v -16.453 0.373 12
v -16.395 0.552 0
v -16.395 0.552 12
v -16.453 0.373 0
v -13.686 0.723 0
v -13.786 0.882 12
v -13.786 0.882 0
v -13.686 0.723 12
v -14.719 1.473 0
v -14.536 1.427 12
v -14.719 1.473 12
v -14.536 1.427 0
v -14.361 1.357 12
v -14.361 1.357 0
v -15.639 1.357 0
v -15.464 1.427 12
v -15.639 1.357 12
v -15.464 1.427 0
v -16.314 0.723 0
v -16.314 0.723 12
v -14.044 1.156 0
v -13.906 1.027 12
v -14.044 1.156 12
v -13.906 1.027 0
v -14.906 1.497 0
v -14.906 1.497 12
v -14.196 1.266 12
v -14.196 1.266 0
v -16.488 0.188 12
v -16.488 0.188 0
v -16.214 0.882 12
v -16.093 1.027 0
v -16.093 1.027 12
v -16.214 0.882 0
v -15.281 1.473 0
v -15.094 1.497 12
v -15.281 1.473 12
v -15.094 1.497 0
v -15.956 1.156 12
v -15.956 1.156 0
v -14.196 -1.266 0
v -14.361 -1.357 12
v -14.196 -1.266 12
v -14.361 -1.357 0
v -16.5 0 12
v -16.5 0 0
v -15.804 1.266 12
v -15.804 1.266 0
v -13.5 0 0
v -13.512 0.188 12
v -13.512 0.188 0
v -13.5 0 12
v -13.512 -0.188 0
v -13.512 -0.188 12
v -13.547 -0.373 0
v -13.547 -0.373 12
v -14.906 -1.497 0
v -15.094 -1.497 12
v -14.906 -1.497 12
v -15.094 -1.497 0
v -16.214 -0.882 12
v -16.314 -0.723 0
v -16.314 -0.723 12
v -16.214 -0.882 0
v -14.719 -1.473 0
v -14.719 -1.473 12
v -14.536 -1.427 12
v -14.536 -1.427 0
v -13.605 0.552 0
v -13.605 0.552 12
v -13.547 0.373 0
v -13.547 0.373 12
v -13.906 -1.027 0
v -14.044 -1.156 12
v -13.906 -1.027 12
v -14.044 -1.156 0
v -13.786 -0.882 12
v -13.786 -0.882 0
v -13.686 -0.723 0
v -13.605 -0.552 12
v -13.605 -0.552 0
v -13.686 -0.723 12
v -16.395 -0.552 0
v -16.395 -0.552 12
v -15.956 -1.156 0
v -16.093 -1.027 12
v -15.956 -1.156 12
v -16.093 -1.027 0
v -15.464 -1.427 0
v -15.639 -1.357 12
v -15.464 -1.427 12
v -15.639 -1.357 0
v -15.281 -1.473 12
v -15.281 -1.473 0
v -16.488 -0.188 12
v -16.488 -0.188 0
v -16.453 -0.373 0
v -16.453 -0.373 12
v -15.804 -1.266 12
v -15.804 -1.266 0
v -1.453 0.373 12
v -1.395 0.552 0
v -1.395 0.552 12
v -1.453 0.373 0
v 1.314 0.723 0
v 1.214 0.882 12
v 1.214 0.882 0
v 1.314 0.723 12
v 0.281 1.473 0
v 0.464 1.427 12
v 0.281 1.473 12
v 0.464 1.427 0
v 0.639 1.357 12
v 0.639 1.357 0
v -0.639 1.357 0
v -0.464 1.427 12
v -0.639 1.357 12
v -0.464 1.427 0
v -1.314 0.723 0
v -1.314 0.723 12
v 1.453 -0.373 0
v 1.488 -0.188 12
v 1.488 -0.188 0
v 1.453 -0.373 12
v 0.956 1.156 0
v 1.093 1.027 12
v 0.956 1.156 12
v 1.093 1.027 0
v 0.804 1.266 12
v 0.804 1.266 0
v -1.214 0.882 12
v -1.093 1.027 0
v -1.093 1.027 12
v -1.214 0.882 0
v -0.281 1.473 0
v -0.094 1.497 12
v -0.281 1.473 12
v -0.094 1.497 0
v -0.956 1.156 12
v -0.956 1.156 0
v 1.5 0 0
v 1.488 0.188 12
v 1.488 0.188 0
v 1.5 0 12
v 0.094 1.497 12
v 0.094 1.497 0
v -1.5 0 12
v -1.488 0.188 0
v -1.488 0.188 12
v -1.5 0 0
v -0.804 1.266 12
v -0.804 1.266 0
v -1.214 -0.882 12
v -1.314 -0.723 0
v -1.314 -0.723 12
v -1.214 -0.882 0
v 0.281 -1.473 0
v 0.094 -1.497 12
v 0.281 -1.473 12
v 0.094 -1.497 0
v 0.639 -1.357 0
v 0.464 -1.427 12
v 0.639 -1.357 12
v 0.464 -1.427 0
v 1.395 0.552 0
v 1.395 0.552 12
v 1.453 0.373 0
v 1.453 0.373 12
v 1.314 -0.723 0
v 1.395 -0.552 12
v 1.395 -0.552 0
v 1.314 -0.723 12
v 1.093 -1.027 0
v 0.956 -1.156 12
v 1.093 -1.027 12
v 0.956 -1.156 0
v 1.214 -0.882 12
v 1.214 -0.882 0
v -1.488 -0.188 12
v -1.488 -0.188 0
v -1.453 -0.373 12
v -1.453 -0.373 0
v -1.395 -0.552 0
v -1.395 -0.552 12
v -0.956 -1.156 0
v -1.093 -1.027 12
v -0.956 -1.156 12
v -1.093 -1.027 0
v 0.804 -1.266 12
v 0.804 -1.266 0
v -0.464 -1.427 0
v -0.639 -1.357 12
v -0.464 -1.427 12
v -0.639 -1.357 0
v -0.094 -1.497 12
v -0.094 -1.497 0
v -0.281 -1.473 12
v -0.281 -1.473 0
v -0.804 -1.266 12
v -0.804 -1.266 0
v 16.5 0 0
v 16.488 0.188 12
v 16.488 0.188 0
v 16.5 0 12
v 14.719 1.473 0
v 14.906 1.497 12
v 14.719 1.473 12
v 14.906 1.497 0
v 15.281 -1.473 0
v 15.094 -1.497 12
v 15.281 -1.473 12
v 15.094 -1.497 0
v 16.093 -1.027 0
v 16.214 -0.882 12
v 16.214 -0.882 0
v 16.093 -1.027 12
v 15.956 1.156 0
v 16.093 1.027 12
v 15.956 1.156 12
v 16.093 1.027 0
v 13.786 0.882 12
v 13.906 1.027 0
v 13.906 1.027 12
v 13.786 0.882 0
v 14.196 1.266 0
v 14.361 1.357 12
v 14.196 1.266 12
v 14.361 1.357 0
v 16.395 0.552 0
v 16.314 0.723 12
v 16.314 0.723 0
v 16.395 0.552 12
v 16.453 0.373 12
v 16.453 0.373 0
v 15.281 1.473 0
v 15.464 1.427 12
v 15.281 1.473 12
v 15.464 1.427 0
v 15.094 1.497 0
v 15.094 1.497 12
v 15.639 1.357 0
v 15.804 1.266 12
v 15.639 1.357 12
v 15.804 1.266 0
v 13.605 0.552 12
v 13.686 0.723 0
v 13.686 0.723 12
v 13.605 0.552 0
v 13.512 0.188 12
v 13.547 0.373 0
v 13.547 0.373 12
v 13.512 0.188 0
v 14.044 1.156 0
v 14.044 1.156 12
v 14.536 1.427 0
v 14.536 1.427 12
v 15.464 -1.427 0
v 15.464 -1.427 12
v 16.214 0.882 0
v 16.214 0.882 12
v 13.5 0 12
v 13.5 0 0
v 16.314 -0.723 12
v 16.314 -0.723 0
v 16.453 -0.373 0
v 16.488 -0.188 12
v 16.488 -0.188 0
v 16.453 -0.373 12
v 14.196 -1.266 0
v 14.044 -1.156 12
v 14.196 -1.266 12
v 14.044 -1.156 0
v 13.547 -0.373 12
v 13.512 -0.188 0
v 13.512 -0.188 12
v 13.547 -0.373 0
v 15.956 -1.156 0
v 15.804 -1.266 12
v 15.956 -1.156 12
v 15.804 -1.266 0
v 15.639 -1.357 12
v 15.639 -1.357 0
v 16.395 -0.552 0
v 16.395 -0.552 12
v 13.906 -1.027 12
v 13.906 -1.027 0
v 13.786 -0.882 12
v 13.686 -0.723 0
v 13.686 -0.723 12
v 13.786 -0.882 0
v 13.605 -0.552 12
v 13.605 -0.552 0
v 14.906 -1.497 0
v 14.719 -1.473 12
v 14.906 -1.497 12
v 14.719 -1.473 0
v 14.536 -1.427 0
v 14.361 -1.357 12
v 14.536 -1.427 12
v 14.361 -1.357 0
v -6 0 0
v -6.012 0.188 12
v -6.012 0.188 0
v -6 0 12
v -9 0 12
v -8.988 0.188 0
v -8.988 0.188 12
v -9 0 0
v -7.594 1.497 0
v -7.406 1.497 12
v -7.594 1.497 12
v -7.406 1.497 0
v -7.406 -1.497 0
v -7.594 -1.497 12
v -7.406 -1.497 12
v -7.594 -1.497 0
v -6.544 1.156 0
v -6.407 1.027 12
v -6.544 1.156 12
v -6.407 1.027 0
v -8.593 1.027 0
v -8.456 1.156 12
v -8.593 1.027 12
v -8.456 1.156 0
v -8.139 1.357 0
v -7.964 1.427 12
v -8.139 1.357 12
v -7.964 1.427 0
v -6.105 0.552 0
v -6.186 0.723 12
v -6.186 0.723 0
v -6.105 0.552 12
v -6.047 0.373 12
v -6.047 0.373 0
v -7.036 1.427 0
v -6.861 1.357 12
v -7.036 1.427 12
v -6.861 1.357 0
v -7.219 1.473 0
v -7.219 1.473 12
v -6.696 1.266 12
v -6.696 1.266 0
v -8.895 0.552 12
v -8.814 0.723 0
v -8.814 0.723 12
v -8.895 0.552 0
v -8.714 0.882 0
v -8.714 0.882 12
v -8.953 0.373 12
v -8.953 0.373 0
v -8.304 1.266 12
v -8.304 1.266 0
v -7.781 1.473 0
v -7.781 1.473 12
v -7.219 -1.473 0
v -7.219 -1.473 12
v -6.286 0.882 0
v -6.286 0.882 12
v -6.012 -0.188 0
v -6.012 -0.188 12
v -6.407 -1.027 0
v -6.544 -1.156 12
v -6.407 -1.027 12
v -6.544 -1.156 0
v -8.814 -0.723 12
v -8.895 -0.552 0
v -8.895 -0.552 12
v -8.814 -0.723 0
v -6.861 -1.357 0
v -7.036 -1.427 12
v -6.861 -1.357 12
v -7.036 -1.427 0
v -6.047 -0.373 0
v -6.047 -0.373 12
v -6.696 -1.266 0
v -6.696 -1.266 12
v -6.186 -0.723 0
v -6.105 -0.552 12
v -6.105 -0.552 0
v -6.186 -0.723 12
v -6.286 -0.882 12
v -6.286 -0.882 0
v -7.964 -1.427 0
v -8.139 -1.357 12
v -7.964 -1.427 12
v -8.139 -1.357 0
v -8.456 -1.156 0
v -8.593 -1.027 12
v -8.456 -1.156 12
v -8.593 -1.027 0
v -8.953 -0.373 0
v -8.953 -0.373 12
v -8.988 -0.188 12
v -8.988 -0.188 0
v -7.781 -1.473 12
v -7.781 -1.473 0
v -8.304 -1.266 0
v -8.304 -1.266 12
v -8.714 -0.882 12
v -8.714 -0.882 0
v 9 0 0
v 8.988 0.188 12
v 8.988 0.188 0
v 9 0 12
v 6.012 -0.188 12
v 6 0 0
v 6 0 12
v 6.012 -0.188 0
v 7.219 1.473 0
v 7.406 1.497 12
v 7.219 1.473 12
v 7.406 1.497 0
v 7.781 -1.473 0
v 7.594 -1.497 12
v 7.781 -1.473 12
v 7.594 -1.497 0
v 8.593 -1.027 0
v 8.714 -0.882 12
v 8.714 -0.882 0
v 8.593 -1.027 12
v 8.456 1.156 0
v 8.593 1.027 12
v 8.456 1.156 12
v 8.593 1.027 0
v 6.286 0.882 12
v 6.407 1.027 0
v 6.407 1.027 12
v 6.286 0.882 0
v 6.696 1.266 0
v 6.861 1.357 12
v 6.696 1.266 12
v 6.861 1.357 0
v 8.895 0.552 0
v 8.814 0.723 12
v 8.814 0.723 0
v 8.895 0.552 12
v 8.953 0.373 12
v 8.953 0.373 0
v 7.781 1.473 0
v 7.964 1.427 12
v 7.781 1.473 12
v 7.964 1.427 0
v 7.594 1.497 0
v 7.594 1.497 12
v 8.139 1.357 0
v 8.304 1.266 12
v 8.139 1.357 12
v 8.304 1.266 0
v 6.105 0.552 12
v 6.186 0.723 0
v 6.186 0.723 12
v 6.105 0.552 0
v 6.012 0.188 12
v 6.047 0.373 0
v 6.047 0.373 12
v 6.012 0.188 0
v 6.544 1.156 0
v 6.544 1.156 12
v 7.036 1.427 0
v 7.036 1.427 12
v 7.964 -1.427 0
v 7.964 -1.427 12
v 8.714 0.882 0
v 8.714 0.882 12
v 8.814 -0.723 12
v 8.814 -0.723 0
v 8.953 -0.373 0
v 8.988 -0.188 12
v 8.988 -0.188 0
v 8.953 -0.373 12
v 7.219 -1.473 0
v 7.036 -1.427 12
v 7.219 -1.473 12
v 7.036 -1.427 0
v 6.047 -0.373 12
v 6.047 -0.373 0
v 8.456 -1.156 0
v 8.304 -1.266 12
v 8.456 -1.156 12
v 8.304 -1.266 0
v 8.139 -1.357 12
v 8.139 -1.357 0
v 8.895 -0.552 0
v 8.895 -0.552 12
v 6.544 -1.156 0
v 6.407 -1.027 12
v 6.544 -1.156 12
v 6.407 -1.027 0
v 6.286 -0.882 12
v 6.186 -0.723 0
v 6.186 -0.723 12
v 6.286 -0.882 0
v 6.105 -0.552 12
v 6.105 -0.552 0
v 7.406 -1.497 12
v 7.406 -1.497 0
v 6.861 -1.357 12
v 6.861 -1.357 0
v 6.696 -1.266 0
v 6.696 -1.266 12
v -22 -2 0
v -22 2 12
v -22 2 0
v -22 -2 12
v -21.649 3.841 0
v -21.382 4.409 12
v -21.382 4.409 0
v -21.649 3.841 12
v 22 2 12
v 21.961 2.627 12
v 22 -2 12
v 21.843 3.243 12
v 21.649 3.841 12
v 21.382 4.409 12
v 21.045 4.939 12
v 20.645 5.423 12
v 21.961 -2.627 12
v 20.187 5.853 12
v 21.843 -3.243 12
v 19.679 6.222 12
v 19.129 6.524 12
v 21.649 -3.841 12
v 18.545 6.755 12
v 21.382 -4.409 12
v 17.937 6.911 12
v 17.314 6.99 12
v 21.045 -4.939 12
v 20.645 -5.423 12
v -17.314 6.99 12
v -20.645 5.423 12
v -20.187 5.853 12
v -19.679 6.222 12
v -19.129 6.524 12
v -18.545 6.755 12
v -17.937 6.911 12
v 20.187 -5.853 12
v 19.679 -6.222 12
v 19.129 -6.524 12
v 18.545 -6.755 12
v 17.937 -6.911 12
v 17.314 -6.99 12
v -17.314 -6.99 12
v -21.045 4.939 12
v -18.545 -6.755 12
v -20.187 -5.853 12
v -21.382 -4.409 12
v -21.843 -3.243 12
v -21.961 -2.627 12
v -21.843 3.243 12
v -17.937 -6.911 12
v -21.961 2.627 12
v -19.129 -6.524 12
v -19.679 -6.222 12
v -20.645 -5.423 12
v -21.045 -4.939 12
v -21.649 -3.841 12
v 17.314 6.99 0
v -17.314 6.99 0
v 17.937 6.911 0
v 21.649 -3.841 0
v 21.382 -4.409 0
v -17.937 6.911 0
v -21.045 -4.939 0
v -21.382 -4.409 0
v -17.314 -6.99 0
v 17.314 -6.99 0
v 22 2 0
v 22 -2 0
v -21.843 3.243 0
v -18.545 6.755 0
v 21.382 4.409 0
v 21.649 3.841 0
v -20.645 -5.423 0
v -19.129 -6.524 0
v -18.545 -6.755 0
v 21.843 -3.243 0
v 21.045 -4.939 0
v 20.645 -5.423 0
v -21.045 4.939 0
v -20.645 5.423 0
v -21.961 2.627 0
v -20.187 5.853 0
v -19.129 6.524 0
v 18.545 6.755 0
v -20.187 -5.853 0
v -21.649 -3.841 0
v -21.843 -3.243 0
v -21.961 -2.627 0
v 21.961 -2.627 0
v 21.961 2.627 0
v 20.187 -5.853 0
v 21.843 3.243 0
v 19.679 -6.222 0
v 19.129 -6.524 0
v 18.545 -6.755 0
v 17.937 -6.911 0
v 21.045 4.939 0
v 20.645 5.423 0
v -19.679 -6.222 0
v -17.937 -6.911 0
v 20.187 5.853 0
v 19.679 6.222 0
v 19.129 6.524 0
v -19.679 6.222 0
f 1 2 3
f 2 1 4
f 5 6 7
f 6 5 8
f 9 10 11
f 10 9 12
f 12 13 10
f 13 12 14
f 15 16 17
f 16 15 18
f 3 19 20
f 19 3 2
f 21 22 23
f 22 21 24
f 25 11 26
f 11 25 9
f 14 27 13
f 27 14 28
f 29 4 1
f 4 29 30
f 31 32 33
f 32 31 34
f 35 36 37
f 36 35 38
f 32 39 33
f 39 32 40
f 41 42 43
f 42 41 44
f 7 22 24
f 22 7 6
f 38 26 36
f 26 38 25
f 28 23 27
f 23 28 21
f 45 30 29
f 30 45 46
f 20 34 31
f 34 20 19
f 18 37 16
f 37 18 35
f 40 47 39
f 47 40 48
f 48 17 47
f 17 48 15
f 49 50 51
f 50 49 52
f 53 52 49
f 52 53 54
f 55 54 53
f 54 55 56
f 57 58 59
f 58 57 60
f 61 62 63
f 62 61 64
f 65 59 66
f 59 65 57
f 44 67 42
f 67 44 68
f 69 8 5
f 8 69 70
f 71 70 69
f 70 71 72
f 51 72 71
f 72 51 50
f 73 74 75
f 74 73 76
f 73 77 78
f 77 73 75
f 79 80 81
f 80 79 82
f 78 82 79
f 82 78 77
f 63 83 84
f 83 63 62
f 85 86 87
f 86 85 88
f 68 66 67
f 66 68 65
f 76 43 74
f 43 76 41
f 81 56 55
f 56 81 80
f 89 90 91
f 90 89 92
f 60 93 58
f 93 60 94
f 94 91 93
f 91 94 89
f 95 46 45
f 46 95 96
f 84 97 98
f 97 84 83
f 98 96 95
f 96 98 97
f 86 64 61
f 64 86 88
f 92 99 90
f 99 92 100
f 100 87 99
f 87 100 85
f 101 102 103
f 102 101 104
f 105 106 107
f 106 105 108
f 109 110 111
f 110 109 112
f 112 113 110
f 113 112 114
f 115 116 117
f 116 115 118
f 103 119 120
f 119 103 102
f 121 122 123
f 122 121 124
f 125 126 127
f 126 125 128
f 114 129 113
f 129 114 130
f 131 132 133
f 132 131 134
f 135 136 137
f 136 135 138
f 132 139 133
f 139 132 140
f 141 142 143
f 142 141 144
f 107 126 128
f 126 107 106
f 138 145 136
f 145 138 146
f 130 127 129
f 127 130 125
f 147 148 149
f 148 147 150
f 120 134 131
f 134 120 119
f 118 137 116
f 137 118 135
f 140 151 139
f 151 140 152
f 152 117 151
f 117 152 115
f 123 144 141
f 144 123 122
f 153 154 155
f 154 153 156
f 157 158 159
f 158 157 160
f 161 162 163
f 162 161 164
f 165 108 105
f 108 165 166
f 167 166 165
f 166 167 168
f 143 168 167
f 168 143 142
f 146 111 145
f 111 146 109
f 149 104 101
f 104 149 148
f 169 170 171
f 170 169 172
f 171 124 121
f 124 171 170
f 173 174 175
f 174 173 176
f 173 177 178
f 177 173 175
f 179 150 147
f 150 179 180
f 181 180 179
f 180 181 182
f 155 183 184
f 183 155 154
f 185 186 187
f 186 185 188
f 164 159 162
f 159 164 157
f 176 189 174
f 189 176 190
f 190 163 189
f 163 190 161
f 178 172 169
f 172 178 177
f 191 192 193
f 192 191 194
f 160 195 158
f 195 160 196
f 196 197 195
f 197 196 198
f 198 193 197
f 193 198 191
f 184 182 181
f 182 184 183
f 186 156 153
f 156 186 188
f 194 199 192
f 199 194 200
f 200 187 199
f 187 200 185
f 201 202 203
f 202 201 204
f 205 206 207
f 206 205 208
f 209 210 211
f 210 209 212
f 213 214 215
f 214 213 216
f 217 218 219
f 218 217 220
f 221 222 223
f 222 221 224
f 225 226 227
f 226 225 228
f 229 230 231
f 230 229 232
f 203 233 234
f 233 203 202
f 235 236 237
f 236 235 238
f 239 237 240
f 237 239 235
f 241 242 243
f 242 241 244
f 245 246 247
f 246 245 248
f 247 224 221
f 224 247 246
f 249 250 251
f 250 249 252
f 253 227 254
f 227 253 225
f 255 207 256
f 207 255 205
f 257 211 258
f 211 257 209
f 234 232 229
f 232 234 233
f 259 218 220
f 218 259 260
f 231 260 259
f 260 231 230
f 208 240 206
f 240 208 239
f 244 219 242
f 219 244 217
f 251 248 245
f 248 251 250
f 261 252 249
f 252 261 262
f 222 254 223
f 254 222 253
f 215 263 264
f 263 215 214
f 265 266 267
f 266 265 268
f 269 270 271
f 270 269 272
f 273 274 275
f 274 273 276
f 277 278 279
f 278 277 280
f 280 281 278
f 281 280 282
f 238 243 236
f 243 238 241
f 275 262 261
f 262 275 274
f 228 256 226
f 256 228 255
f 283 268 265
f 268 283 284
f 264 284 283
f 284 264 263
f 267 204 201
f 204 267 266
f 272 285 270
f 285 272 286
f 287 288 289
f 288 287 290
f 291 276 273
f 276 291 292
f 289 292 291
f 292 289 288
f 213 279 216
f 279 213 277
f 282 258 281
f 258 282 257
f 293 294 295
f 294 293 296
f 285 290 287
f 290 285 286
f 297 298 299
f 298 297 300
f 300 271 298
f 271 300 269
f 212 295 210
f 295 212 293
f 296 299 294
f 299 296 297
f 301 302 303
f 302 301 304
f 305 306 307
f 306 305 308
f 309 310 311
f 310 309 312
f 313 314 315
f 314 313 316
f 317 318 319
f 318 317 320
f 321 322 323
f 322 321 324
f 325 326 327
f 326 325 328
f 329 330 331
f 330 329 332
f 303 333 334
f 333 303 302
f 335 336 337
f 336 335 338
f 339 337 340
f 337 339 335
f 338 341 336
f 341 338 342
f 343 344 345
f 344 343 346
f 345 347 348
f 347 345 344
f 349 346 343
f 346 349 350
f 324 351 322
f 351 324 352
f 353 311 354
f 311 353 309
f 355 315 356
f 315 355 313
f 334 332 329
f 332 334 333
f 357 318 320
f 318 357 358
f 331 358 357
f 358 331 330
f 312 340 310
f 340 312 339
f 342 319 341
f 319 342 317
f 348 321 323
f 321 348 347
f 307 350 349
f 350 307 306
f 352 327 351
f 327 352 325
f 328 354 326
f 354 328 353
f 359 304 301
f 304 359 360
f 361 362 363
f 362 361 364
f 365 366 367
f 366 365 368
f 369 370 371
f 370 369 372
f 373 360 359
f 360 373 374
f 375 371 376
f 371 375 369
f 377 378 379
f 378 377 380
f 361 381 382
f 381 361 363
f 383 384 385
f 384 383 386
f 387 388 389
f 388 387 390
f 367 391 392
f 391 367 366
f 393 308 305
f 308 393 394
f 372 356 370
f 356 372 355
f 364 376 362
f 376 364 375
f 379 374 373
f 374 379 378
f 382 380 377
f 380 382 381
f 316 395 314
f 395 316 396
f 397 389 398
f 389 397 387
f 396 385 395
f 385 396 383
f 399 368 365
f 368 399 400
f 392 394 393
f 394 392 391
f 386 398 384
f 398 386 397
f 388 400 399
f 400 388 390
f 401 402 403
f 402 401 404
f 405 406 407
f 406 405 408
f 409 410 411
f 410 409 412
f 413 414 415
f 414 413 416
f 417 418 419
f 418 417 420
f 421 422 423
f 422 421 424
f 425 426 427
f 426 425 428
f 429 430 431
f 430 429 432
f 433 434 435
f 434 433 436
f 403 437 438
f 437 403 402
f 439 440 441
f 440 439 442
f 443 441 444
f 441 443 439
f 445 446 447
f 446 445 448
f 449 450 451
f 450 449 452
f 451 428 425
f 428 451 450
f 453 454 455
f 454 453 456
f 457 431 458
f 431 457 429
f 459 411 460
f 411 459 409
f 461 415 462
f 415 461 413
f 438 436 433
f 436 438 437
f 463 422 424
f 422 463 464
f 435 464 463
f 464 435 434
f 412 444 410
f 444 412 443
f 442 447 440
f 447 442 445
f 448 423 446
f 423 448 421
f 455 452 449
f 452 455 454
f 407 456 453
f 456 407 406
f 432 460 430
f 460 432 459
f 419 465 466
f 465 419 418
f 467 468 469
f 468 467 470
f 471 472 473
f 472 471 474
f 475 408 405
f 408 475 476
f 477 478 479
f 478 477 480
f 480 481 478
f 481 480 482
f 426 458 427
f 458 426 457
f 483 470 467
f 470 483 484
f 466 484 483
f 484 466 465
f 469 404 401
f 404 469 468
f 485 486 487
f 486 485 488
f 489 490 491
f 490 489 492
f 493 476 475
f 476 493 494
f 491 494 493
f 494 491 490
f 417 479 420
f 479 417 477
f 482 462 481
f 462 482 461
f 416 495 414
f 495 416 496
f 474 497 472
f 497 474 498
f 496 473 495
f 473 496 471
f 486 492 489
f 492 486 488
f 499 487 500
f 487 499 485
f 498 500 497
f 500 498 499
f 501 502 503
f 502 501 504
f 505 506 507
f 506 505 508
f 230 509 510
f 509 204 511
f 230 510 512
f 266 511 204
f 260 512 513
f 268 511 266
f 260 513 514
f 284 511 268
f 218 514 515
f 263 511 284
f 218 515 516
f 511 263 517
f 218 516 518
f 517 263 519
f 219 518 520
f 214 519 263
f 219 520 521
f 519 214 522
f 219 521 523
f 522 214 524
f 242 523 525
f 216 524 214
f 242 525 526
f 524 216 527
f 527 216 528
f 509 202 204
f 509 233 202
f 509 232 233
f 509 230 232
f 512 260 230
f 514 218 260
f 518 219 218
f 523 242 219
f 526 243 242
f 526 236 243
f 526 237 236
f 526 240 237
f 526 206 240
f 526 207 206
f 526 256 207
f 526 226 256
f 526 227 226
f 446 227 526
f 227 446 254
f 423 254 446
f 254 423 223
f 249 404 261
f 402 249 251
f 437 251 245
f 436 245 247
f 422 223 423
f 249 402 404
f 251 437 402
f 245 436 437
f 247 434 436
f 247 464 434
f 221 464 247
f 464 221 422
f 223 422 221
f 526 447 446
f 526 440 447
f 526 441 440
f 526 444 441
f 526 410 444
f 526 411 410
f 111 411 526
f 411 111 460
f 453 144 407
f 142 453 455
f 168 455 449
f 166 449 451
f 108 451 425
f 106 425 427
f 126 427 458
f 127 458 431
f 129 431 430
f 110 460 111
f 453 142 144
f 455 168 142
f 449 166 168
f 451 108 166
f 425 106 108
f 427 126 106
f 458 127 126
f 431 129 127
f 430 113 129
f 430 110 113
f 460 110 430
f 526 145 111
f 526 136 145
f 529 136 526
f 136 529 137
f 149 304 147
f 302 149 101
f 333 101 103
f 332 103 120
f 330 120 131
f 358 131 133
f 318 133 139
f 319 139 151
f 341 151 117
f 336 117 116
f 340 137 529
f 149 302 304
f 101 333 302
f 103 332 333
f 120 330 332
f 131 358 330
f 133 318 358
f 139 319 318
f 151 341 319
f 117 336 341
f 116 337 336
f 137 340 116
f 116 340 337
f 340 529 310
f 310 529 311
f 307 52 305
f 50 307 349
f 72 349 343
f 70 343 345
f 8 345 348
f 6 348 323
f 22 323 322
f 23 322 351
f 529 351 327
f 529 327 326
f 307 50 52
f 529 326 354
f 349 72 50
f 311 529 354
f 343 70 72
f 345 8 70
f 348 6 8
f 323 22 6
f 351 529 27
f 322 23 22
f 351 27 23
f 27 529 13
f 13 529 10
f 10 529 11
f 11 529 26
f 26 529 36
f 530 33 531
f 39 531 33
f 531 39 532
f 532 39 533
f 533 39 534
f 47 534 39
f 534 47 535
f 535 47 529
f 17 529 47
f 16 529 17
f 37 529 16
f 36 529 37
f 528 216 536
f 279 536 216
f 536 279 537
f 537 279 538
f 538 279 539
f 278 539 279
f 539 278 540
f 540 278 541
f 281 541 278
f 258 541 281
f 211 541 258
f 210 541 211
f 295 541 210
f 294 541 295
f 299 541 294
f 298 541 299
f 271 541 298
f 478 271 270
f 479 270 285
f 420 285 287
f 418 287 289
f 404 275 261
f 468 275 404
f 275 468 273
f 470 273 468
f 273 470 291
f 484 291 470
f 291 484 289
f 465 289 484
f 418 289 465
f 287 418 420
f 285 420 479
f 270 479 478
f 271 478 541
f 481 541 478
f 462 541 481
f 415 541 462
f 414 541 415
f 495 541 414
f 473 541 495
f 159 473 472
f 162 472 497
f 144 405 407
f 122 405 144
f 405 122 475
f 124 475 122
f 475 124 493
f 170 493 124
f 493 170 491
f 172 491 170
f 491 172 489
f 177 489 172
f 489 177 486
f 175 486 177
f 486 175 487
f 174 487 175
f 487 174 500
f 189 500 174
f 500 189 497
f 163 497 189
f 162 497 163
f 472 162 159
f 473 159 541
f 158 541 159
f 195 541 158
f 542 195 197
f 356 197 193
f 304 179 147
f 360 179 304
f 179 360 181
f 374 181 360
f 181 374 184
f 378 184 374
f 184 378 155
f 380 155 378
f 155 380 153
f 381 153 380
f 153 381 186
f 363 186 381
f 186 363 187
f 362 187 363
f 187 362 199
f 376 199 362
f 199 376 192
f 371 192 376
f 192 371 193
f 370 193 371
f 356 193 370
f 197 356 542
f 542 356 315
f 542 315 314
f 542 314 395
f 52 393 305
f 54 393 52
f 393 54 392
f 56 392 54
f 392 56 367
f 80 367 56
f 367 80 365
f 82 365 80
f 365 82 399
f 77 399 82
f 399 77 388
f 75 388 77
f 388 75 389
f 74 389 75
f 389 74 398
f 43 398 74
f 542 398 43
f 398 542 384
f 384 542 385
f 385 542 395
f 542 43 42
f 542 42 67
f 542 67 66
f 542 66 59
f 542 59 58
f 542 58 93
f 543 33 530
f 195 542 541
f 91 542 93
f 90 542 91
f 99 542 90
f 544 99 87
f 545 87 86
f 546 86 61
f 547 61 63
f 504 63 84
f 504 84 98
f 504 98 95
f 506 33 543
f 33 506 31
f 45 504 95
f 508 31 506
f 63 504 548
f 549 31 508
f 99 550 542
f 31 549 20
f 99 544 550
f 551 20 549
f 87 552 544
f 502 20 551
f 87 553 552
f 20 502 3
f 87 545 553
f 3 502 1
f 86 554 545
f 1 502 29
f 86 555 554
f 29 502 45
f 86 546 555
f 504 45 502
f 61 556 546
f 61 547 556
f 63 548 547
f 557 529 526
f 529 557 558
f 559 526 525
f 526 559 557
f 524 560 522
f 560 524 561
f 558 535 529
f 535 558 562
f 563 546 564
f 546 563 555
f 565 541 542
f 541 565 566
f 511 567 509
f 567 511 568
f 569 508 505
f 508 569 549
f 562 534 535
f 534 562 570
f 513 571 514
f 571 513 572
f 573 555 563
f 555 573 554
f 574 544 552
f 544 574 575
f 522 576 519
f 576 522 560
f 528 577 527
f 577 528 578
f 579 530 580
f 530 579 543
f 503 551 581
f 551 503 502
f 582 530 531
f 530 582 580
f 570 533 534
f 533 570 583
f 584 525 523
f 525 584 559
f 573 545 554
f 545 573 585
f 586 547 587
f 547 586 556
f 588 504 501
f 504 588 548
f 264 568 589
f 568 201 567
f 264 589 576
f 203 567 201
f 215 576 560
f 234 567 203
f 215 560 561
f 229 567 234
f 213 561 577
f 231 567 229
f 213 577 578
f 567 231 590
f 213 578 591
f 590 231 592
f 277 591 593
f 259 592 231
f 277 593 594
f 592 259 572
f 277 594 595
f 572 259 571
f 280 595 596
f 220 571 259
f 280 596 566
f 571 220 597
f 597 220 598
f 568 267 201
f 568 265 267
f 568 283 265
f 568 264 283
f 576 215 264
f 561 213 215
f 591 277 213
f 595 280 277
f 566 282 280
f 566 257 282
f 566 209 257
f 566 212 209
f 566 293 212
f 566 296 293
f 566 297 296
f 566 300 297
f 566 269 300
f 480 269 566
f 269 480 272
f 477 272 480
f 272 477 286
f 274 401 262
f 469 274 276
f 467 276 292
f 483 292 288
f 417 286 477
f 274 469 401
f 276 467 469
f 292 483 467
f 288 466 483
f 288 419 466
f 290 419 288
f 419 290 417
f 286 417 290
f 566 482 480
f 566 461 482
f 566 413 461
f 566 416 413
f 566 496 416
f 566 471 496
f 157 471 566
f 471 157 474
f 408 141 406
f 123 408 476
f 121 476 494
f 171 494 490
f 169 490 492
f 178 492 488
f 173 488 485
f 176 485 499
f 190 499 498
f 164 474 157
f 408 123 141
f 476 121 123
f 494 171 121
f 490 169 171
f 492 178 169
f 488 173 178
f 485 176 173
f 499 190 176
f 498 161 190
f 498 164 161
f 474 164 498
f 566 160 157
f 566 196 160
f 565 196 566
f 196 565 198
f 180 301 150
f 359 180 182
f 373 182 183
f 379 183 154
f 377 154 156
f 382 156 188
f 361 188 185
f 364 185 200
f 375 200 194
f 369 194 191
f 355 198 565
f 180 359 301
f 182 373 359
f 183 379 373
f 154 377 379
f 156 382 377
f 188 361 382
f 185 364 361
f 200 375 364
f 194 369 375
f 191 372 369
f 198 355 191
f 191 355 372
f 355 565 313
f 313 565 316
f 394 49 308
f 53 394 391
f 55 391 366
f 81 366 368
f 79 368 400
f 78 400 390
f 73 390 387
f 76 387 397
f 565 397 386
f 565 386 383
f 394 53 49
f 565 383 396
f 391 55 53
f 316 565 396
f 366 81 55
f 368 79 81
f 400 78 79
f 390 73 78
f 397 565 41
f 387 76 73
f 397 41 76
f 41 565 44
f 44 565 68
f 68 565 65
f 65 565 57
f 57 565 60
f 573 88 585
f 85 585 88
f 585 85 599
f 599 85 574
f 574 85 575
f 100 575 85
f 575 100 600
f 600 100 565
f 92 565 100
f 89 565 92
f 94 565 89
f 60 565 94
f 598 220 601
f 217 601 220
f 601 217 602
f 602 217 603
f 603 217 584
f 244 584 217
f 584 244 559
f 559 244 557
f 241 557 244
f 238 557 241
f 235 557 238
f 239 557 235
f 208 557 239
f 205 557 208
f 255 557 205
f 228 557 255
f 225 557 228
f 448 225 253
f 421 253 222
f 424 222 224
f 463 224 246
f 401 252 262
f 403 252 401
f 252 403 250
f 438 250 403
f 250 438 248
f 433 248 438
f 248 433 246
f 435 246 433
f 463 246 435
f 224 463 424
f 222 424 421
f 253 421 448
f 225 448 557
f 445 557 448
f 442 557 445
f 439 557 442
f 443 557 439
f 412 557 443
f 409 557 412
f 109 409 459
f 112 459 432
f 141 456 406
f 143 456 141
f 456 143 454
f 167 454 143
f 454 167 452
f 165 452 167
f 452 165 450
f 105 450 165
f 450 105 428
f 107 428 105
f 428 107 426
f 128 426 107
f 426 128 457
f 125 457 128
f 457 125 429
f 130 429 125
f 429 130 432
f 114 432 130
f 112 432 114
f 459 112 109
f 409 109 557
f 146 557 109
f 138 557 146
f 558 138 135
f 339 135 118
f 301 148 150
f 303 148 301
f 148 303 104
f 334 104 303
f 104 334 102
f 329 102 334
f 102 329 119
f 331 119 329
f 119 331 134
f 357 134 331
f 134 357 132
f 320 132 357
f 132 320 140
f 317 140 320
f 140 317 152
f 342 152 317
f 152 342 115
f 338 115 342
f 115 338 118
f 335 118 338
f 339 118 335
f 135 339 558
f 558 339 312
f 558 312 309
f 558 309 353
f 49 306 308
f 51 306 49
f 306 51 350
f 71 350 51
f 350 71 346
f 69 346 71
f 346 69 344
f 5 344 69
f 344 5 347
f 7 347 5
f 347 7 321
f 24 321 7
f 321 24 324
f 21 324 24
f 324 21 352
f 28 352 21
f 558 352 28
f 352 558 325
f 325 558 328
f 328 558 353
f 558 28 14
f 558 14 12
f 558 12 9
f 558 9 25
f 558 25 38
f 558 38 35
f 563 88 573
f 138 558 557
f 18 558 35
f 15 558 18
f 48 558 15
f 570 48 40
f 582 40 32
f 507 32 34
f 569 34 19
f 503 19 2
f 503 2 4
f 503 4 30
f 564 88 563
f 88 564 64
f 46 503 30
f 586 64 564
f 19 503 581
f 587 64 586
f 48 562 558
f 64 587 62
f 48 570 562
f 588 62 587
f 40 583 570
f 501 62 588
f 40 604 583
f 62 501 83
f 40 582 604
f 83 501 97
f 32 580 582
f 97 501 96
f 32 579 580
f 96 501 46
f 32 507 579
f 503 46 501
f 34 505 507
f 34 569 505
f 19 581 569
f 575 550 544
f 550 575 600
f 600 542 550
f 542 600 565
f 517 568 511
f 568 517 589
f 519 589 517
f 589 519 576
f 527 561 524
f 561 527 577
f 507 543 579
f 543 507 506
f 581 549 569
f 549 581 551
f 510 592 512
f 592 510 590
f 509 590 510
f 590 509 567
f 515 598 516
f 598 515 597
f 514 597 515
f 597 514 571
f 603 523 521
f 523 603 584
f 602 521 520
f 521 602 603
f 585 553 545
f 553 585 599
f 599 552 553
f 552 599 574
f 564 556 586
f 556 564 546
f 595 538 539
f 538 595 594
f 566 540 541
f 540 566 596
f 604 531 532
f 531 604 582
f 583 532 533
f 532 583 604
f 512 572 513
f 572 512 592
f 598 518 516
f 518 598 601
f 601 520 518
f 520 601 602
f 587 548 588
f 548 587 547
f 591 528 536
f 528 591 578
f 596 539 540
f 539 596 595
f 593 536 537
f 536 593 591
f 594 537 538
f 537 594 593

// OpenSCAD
$fn = 50;


difference() {
	union() {
		hull() {
			translate(v = [-17.0000000000, 2.0000000000, 0]) {
				cylinder(h = 12, r = 5);
			}
			translate(v = [17.0000000000, 2.0000000000, 0]) {
				cylinder(h = 12, r = 5);
			}
			translate(v = [-17.0000000000, -2.0000000000, 0]) {
				cylinder(h = 12, r = 5);
			}
			translate(v = [17.0000000000, -2.0000000000, 0]) {
				cylinder(h = 12, r = 5);
			}
		}
	}
	union() {
		translate(v = [-15.0000000000, 0.0000000000, 0]) {
			translate(v = [0, 0, -100]) {
				cylinder(h = 200, r = 1.5000000000);
			}
		}
		translate(v = [0, 0, -100]) {
			cylinder(h = 200, r = 1.5000000000);
		}
		translate(v = [15.0000000000, 0.0000000000, 0]) {
			translate(v = [0, 0, -100]) {
				cylinder(h = 200, r = 1.5000000000);
			}
		}
		translate(v = [-15.0000000000, 0.0000000000, 0]) {
			translate(v = [0, 0, -100]) {
				cylinder(h = 200, r = 1.5000000000);
			}
		}
		translate(v = [-7.5000000000, 0.0000000000, 0]) {
			translate(v = [0, 0, -100]) {
				cylinder(h = 200, r = 1.5000000000);
			}
		}
		translate(v = [0, 0, -100]) {
			cylinder(h = 200, r = 1.5000000000);
		}
		translate(v = [7.5000000000, 0.0000000000, 0]) {
			translate(v = [0, 0, -100]) {
				cylinder(h = 200, r = 1.5000000000);
			}
		}
		translate(v = [15.0000000000, 0.0000000000, 0]) {
			translate(v = [0, 0, -100]) {
				cylinder(h = 200, r = 1.5000000000);
			}
		}
	}
}
